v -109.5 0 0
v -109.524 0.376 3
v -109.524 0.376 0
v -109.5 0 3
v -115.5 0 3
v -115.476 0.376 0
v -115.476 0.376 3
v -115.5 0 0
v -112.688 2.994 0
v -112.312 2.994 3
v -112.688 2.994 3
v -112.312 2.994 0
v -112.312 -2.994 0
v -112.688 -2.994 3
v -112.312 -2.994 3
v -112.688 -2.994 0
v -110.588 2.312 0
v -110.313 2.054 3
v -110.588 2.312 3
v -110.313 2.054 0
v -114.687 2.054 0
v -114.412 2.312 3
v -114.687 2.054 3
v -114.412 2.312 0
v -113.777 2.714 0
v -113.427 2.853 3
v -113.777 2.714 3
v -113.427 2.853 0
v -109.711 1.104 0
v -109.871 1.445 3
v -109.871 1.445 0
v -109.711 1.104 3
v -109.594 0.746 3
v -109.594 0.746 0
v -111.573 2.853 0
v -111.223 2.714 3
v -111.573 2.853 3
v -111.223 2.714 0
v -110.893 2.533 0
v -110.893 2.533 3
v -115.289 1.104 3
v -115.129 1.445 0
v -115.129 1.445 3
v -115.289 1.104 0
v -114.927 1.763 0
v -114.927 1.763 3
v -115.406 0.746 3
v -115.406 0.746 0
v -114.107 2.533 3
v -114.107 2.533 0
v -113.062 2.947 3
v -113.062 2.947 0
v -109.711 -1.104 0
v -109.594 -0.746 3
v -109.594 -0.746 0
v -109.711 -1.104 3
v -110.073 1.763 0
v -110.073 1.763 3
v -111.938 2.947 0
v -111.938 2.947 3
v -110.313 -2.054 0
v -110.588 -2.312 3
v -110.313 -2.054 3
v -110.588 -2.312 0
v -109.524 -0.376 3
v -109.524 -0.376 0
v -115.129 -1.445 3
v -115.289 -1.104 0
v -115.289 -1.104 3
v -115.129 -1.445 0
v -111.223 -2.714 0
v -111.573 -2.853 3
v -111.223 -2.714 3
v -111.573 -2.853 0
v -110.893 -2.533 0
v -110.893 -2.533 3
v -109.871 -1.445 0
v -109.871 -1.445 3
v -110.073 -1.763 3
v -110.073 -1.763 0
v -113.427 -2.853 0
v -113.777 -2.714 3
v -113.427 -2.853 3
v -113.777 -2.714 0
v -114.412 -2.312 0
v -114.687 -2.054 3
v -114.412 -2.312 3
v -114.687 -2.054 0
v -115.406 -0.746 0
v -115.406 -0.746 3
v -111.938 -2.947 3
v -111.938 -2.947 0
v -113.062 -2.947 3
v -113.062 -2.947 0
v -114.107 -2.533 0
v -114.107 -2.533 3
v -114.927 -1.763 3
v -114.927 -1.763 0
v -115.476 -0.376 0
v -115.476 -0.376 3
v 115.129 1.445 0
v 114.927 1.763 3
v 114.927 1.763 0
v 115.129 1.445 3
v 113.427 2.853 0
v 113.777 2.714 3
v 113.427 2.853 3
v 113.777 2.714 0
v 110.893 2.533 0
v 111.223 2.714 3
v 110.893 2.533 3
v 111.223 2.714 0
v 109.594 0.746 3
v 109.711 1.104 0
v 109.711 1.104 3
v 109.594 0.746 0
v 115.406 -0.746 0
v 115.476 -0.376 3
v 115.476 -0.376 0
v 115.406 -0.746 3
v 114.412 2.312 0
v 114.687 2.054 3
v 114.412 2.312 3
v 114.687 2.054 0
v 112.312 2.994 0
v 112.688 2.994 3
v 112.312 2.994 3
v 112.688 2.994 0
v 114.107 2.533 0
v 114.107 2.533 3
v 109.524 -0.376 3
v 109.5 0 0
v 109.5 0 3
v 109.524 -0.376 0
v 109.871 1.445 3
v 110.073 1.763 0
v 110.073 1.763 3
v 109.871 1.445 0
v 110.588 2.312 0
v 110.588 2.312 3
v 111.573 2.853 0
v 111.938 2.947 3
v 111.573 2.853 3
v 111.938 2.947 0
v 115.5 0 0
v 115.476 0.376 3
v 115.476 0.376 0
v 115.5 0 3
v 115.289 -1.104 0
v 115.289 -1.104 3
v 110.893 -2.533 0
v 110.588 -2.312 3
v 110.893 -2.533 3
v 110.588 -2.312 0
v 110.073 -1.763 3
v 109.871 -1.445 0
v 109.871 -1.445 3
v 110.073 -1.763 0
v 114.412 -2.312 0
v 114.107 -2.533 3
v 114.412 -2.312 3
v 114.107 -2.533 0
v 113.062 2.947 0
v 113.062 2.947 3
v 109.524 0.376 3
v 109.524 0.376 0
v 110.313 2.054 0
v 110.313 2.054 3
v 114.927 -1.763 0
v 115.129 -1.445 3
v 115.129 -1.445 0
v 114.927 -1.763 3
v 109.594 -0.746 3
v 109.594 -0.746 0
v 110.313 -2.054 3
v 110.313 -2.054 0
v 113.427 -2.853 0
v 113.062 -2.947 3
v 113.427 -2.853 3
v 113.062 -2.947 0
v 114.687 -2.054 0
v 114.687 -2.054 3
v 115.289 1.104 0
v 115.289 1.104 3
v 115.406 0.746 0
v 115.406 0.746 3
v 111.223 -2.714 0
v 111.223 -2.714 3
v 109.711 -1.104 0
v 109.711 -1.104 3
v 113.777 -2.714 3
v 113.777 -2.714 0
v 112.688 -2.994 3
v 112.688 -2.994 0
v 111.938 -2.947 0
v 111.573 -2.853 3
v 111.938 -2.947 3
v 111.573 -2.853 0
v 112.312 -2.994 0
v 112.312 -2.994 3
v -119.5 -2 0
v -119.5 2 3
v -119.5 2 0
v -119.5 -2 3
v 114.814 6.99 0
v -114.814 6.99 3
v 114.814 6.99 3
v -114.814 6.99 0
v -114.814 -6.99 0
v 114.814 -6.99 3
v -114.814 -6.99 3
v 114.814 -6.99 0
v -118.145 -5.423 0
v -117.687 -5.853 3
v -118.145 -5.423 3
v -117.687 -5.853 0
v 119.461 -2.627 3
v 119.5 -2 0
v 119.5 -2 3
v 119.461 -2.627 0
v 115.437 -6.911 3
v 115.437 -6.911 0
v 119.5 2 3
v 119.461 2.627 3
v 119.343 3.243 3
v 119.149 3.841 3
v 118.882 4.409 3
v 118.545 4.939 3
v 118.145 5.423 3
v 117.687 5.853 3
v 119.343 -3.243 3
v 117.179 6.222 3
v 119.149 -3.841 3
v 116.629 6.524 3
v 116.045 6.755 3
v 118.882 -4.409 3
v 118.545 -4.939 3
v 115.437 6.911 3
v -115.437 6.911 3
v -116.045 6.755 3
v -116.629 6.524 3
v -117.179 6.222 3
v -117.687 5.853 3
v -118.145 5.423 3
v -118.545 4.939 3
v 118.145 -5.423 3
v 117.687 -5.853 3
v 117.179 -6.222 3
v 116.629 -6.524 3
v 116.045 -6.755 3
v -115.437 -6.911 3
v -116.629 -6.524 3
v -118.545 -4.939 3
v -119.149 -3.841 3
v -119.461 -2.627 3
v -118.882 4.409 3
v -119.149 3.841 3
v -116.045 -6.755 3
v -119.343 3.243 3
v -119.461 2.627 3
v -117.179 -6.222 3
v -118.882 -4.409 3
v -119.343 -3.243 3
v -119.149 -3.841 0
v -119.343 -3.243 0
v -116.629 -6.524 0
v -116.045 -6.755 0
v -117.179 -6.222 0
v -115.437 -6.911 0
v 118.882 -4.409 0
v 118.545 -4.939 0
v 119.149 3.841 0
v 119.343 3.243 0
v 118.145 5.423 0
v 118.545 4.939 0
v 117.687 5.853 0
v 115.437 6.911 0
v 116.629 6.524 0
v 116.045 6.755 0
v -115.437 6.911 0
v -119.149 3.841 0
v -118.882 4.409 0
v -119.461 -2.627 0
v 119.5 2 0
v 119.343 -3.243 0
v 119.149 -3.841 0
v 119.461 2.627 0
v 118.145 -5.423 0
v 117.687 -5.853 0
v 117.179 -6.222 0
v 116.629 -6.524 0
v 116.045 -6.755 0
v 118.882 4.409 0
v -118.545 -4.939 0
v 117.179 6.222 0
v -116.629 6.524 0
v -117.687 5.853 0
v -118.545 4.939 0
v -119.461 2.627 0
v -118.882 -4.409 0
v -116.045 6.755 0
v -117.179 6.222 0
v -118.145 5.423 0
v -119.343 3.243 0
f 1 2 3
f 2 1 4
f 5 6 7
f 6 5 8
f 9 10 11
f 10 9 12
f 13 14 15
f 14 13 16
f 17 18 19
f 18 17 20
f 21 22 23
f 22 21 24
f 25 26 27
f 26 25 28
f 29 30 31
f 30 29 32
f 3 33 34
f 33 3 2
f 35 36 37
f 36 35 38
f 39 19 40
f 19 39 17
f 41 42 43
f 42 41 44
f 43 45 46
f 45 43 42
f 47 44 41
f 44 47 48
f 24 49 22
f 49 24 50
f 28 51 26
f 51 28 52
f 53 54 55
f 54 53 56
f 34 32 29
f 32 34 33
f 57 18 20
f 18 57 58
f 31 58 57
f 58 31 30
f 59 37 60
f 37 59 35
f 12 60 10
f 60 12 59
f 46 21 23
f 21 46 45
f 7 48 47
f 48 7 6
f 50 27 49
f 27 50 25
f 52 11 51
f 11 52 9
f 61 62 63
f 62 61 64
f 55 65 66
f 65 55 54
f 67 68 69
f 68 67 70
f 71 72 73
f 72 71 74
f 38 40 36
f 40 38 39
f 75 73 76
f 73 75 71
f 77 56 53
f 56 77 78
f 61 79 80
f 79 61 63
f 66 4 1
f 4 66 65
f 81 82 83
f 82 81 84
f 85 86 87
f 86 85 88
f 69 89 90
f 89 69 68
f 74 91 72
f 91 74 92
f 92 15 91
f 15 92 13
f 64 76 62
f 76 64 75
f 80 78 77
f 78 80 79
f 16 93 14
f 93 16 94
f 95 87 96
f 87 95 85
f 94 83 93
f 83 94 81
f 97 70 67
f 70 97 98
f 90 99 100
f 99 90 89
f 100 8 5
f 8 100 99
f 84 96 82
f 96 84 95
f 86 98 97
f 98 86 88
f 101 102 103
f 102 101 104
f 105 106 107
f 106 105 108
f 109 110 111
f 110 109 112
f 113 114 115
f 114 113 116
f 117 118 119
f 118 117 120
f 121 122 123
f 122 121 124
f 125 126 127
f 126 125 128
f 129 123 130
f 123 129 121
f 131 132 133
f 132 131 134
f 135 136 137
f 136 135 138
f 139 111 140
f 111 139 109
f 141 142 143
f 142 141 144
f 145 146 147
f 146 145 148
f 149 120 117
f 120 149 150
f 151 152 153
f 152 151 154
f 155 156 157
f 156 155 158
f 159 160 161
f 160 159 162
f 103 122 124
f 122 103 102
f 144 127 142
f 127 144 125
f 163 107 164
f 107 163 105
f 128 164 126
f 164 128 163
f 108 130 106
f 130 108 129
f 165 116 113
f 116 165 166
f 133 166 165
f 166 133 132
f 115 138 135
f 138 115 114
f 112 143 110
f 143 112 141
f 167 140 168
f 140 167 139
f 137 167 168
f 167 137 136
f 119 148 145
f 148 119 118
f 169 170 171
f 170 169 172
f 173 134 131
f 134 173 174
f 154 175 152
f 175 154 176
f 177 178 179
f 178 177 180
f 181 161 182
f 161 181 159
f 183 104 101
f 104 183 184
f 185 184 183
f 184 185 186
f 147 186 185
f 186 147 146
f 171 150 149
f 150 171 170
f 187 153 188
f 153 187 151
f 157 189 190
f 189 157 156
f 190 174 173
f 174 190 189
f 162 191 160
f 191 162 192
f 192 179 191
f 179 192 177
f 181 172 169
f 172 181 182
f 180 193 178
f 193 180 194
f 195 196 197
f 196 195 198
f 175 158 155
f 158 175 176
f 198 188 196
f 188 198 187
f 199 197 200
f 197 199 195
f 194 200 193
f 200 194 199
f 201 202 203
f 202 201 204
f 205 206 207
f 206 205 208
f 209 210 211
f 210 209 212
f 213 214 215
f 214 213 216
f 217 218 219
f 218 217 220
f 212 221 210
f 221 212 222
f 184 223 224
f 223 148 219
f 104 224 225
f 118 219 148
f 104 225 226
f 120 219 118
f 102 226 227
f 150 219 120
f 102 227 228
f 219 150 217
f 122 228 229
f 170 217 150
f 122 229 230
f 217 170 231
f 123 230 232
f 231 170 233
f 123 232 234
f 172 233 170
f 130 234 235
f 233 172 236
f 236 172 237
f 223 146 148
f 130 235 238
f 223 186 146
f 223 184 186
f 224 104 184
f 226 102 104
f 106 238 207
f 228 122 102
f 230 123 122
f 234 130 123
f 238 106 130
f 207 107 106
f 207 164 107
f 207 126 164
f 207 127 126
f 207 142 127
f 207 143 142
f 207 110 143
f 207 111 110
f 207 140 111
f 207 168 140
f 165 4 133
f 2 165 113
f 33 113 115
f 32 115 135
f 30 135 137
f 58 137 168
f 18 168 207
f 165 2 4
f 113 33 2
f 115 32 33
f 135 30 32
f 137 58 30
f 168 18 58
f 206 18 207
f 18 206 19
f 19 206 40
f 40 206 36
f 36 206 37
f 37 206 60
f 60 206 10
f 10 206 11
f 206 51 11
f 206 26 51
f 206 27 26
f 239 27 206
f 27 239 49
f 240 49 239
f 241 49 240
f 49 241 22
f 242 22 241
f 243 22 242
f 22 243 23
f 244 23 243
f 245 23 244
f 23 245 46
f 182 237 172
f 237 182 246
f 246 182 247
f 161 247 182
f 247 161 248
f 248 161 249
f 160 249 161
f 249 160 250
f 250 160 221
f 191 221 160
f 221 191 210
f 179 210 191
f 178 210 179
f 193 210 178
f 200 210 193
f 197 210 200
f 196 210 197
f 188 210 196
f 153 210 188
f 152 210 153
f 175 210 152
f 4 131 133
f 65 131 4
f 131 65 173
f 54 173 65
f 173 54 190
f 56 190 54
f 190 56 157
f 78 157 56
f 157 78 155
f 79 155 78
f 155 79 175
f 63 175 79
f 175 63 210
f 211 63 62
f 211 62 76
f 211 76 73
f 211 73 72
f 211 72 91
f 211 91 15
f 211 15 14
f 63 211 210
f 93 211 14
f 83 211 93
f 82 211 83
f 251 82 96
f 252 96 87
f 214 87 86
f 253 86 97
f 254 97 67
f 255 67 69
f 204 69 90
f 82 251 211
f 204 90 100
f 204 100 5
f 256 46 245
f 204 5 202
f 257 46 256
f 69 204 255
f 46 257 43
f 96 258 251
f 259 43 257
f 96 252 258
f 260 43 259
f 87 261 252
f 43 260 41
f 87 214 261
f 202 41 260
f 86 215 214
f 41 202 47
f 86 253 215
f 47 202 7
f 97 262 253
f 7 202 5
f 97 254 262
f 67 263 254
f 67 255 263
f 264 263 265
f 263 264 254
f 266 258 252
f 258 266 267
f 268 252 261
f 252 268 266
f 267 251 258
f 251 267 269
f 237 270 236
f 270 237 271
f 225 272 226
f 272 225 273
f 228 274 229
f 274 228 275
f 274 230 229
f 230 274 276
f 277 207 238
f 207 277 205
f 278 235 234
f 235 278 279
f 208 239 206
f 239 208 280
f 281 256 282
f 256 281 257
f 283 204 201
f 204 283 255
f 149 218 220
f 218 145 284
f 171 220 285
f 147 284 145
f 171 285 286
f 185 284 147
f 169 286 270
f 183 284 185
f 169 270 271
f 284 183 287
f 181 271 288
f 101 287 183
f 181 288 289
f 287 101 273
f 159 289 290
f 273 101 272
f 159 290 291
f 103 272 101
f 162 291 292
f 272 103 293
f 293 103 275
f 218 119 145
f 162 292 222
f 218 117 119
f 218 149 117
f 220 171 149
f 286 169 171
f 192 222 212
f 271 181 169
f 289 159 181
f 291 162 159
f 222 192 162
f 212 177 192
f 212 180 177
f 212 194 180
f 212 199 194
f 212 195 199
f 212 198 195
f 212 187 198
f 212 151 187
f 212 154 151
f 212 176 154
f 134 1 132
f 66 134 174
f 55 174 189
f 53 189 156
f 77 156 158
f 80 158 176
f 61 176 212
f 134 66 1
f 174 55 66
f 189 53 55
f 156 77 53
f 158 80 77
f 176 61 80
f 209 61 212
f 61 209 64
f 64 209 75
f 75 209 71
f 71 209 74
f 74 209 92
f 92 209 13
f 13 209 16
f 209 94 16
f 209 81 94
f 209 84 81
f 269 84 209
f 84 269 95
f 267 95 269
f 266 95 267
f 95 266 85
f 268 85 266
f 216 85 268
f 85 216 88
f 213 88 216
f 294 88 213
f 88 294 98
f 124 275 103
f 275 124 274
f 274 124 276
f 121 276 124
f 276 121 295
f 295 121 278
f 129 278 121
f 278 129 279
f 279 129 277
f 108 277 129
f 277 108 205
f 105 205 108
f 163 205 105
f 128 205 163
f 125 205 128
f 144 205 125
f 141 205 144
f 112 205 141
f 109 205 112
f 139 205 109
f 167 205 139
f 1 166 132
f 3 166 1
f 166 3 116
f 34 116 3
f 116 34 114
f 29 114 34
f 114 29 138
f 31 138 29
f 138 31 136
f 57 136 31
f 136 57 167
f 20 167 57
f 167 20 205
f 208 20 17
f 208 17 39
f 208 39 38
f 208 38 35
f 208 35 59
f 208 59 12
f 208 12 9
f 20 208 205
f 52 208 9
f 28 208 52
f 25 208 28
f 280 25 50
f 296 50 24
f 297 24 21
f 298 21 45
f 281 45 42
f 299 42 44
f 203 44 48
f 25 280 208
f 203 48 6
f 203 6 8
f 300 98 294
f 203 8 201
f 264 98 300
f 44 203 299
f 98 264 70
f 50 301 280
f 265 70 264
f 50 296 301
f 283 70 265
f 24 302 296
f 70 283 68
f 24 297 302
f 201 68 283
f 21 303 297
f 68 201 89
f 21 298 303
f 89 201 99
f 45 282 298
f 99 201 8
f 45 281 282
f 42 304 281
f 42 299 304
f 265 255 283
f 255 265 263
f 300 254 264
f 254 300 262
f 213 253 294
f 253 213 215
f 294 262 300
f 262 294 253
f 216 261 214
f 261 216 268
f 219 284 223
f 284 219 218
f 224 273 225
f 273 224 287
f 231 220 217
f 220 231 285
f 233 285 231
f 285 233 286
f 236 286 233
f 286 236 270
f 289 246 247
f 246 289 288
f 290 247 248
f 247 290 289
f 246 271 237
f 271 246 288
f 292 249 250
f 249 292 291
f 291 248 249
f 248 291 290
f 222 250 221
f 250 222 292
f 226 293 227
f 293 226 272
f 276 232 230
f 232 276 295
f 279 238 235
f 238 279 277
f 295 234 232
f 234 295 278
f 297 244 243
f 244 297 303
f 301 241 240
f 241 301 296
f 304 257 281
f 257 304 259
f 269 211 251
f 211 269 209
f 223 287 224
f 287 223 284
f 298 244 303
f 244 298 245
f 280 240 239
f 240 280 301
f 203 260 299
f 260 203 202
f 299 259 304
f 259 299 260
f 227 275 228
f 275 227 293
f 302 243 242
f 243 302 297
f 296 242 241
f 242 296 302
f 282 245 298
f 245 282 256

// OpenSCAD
$fn = 50;


difference() {
	union() {
		hull() {
			translate(v = [-114.5000000000, 2.0000000000, 0]) {
				cylinder(h = 3, r = 5);
			}
			translate(v = [114.5000000000, 2.0000000000, 0]) {
				cylinder(h = 3, r = 5);
			}
			translate(v = [-114.5000000000, -2.0000000000, 0]) {
				cylinder(h = 3, r = 5);
			}
			translate(v = [114.5000000000, -2.0000000000, 0]) {
				cylinder(h = 3, r = 5);
			}
		}
	}
	union() {
		translate(v = [-112.5000000000, 0.0000000000, -100.0000000000]) {
			cylinder(h = 200, r = 3.0000000000);
		}
		translate(v = [-112.5000000000, 0.0000000000, -100.0000000000]) {
			cylinder(h = 200, r = 3.0000000000);
		}
		translate(v = [112.5000000000, 0.0000000000, -100.0000000000]) {
			cylinder(h = 200, r = 3.0000000000);
		}
		translate(v = [112.5000000000, 0.0000000000, -100.0000000000]) {
			cylinder(h = 200, r = 3.0000000000);
		}
	}
}
